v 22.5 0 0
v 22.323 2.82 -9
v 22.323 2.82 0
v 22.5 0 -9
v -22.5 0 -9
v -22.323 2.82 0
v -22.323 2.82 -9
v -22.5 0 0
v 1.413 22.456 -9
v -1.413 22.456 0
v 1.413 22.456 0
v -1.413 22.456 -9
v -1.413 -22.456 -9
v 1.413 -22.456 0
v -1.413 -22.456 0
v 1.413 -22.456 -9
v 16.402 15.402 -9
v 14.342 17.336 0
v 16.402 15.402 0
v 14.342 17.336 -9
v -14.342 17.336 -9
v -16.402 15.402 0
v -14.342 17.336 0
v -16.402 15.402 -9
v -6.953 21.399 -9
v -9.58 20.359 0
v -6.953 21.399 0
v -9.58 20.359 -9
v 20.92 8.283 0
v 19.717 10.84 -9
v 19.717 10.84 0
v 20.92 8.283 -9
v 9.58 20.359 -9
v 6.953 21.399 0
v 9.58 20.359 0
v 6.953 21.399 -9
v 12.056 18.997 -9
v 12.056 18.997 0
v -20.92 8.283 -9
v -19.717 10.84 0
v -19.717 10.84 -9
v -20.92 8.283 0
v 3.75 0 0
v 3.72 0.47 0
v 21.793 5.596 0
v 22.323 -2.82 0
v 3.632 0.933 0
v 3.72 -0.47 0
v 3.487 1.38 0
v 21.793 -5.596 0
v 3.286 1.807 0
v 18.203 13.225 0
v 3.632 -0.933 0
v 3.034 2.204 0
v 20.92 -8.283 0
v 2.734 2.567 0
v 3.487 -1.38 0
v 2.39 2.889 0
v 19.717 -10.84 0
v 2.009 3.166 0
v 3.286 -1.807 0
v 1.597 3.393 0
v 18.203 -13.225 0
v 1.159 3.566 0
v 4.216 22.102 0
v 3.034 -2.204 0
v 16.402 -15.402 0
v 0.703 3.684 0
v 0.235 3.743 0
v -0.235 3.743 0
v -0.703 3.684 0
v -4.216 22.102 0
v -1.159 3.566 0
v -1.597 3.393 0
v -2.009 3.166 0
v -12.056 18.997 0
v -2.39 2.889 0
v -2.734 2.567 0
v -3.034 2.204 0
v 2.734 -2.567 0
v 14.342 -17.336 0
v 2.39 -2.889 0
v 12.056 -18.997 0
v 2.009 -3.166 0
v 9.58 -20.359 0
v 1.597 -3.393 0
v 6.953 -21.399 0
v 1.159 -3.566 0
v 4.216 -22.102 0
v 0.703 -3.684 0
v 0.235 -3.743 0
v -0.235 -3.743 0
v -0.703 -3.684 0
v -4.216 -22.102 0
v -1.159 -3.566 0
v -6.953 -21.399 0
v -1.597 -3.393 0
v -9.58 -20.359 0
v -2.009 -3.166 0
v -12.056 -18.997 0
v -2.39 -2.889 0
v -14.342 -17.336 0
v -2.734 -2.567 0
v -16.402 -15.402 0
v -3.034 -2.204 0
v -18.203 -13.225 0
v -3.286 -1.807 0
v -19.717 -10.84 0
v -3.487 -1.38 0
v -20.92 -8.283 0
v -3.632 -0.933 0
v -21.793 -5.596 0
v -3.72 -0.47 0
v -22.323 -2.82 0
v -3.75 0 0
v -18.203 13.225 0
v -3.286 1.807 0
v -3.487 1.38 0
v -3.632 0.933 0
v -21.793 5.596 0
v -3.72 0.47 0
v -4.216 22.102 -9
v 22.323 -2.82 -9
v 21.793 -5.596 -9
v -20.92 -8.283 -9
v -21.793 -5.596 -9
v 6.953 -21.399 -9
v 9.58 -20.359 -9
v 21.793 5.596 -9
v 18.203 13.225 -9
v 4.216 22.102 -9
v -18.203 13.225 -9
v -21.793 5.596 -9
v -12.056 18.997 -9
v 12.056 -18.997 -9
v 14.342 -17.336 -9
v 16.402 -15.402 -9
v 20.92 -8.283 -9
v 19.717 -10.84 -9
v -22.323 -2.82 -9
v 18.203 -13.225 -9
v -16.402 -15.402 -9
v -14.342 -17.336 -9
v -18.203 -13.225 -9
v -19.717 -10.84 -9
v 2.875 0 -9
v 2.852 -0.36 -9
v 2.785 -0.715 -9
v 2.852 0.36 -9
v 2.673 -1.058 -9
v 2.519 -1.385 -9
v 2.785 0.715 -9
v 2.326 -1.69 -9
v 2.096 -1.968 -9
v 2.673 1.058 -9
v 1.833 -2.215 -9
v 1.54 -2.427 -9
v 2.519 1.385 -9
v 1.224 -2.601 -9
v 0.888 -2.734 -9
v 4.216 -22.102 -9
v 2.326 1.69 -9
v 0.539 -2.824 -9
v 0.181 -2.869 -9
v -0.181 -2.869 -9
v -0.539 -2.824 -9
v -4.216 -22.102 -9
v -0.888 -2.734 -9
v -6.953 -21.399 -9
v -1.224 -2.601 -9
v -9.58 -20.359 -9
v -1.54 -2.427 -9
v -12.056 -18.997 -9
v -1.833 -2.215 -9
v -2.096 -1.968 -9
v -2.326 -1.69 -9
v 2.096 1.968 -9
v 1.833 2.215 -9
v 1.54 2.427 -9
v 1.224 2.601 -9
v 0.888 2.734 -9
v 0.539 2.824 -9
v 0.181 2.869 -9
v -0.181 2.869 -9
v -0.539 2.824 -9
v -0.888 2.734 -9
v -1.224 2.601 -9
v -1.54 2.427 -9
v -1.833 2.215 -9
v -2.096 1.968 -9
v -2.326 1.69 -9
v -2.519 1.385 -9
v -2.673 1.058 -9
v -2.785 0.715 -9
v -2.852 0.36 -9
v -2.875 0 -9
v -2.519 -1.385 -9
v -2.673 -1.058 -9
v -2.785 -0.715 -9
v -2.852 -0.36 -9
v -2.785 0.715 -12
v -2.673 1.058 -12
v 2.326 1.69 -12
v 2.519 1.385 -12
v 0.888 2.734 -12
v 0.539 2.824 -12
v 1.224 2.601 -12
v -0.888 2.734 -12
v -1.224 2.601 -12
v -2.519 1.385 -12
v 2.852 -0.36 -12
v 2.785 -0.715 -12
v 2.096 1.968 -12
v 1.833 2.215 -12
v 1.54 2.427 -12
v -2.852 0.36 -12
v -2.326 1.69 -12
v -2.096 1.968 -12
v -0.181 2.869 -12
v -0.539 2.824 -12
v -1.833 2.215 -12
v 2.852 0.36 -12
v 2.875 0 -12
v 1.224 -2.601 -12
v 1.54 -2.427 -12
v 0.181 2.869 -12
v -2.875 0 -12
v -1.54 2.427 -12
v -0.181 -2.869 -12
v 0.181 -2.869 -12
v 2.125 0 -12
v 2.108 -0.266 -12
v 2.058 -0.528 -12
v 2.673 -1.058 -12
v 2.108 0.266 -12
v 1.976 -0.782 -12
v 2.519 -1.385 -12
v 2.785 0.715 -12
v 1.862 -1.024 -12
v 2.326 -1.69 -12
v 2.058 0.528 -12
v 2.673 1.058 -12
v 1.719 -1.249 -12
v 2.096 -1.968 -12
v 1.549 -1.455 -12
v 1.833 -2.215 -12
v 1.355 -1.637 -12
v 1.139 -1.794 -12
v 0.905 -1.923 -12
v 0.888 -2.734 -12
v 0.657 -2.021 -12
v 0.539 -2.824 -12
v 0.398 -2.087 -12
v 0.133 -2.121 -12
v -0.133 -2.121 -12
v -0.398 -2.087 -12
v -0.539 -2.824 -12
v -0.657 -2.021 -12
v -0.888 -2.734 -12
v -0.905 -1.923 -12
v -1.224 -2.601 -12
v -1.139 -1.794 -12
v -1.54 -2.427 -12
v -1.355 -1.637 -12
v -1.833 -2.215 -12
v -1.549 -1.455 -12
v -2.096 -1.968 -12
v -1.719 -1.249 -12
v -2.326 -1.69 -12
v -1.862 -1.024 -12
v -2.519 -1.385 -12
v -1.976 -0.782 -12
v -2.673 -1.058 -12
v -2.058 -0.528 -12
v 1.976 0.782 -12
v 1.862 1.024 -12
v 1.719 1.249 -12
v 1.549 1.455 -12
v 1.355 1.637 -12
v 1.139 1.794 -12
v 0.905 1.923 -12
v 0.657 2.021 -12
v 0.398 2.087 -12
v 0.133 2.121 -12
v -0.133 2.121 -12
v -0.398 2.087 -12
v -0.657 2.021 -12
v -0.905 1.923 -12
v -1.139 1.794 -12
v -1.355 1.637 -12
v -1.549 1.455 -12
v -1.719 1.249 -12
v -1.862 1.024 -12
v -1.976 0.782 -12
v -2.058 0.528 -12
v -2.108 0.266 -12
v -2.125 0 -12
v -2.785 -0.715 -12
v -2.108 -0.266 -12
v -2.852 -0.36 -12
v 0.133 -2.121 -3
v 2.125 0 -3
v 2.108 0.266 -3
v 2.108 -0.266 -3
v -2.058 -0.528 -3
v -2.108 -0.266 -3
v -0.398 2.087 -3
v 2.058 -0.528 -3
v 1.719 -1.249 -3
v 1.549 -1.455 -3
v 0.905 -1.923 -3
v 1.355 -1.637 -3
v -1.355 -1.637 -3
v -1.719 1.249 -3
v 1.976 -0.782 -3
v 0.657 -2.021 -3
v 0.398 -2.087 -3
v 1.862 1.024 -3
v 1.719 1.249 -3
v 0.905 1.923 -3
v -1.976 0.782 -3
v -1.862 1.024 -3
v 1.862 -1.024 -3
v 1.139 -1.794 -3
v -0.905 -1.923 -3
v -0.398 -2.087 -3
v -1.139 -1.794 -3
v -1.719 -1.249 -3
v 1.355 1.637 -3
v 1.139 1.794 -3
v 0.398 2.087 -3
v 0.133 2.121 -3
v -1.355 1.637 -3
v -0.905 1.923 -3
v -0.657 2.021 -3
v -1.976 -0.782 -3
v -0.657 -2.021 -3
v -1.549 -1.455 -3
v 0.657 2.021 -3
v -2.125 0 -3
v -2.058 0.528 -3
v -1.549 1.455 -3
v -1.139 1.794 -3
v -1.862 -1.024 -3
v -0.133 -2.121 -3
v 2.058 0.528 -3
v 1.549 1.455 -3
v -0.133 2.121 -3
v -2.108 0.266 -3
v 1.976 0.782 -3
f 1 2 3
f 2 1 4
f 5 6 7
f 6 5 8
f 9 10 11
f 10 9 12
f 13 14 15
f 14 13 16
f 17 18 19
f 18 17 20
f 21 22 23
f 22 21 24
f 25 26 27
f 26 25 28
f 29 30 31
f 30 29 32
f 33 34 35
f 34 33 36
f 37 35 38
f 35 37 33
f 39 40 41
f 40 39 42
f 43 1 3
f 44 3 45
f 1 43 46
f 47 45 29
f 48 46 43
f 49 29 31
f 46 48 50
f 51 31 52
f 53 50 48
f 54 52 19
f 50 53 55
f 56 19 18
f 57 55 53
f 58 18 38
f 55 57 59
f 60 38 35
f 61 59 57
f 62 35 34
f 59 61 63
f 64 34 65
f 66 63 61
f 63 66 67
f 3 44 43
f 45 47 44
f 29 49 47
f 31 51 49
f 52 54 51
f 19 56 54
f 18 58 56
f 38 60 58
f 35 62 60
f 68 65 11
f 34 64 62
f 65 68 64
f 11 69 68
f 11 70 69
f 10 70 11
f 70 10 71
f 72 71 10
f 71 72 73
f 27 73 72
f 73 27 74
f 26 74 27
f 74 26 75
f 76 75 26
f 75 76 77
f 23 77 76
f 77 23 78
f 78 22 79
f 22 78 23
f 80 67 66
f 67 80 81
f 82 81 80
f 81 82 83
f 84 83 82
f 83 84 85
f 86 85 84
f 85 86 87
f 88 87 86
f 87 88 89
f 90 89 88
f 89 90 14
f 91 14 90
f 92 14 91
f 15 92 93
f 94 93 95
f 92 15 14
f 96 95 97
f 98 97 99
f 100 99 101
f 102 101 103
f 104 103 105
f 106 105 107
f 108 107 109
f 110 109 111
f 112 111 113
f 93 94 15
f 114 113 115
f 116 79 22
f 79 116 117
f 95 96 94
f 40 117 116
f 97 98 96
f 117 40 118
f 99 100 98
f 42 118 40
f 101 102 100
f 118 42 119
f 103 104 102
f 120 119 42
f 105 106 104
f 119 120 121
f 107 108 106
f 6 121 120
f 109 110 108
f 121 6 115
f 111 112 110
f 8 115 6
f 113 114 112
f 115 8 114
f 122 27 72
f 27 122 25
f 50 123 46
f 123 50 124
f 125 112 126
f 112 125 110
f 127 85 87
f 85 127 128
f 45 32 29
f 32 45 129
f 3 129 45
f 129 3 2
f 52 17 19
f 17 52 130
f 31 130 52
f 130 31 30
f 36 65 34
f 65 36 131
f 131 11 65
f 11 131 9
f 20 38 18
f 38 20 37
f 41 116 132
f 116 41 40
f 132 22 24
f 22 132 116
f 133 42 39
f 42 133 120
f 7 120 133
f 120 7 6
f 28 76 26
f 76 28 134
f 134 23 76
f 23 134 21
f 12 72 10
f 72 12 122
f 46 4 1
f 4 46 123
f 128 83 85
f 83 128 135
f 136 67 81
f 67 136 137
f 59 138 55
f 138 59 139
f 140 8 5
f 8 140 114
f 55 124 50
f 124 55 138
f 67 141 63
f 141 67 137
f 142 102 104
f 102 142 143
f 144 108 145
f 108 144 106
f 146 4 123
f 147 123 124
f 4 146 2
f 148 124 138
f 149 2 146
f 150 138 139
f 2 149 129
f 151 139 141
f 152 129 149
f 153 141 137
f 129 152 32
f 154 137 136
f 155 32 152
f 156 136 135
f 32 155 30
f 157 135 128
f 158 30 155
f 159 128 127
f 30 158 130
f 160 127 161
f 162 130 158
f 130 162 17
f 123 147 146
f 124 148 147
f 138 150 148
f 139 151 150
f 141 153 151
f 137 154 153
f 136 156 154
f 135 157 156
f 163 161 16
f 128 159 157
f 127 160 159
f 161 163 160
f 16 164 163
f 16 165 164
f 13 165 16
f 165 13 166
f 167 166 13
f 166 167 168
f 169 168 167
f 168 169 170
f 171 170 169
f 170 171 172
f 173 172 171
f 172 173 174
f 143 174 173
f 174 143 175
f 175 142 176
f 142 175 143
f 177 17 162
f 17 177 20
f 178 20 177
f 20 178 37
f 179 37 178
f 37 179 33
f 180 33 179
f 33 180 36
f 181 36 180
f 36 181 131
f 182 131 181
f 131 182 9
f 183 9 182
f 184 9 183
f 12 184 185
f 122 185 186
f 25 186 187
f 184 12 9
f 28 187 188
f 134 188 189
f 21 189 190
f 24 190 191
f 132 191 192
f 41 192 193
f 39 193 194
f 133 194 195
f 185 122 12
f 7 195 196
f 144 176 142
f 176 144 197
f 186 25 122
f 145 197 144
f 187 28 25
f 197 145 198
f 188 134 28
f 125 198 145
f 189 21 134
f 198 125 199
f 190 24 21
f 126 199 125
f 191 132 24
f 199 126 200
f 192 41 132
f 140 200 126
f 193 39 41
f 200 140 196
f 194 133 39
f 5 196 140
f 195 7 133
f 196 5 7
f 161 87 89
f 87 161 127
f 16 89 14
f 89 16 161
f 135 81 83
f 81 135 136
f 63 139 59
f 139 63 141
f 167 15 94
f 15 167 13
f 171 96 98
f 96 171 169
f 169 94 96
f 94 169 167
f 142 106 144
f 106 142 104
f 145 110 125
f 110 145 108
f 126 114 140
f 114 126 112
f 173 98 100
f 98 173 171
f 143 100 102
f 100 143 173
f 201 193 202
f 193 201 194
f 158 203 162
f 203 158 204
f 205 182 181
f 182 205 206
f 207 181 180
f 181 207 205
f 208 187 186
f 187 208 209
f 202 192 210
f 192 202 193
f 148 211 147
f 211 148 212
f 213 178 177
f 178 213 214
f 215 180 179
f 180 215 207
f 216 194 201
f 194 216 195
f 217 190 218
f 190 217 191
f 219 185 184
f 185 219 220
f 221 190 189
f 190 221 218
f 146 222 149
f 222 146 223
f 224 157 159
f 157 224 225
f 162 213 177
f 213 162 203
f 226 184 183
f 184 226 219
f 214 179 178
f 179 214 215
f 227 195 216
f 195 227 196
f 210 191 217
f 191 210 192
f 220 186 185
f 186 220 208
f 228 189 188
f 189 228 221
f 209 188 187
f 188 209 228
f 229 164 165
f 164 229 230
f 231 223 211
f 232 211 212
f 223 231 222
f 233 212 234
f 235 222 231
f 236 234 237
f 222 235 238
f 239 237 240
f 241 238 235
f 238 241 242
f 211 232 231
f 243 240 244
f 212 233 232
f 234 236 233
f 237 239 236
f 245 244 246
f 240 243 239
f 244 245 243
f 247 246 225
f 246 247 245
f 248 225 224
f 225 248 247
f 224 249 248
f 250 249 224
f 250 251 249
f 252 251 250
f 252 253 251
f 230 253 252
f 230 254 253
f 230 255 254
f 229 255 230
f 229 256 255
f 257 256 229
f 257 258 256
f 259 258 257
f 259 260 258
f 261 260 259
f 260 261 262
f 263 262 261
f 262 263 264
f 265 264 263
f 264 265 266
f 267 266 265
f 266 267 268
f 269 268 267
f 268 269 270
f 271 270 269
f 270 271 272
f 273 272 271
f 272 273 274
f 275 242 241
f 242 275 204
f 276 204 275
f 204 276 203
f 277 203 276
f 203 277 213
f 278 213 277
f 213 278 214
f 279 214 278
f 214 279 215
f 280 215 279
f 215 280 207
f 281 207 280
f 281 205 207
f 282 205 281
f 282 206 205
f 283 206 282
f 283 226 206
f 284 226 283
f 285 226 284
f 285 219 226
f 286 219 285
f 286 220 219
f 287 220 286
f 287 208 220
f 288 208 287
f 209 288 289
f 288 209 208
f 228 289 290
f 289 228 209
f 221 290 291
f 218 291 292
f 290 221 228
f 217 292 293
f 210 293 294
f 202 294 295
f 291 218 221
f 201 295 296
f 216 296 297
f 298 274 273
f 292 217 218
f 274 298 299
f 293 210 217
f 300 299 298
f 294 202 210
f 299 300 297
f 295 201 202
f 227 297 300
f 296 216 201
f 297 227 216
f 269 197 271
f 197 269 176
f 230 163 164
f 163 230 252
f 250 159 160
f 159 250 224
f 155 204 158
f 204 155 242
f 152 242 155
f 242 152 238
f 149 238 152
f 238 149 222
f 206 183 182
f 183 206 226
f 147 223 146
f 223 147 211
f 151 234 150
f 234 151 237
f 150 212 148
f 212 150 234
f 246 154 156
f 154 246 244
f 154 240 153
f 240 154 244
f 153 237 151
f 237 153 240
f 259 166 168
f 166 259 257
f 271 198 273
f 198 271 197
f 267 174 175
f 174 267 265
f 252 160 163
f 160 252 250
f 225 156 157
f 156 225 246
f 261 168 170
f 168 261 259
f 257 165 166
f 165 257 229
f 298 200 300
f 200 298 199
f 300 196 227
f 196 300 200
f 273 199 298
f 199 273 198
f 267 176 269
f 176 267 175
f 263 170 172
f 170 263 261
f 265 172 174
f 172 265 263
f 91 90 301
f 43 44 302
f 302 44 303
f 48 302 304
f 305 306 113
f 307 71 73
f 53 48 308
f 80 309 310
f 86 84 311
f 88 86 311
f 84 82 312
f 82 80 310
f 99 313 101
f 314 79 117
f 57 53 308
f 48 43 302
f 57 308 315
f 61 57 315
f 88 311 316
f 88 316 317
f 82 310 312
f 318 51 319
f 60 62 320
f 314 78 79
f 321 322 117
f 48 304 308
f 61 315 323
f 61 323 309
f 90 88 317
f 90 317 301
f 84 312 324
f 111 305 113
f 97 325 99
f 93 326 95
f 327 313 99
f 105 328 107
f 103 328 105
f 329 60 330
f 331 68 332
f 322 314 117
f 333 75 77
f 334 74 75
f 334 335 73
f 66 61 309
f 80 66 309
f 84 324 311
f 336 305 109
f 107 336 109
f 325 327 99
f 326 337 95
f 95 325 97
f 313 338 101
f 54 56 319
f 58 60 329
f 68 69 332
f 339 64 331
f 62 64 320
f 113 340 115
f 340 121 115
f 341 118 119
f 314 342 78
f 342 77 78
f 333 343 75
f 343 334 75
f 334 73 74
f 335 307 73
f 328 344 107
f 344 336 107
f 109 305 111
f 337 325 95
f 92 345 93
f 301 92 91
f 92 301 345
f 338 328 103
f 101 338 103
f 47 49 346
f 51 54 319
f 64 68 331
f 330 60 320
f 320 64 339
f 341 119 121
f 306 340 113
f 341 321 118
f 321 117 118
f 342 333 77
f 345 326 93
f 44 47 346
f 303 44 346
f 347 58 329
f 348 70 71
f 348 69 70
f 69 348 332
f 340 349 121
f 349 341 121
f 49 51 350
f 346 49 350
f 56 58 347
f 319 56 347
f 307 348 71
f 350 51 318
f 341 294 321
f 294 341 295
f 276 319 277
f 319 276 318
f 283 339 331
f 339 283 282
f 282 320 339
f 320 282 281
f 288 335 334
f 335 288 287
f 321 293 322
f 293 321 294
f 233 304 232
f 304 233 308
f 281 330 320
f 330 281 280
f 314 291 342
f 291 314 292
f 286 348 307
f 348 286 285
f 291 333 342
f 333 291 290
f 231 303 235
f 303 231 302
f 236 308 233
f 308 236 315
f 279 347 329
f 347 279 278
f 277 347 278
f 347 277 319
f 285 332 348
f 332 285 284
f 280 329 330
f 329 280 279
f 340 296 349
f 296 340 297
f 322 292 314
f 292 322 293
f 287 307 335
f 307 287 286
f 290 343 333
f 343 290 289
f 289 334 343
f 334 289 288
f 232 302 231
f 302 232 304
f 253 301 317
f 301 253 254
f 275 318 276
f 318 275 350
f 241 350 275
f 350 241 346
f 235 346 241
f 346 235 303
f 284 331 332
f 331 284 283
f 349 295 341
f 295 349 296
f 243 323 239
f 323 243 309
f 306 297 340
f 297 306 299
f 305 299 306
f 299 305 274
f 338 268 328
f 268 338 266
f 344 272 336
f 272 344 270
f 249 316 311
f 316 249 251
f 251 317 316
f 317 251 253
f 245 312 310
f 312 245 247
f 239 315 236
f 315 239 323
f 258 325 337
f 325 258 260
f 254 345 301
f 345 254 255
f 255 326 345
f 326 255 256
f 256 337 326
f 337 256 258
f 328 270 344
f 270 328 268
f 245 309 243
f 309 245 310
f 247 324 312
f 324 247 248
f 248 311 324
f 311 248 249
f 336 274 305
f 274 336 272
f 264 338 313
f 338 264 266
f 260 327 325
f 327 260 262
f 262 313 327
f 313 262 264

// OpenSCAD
$fn = 50;


difference() {
	union() {
		translate(v = [0, 0, -9.0000000000]) {
			cylinder(h = 9, r = 22.5000000000);
		}
		translate(v = [0, 0, -12.0000000000]) {
			cylinder(h = 12, r = 2.8750000000);
		}
	}
	union() {
		translate(v = [0, 0, 0]) {
			rotate(a = [0, 0, 0]) {
				difference() {
					union() {
						translate(v = [0, 0, -12.0000000000]) {
							cylinder(h = 12, r = 2.0000000000);
						}
						translate(v = [0, 0, -3]) {
							cylinder(h = 3, r1 = 2.1250000000, r2 = 3.7500000000);
						}
						translate(v = [0, 0, -12.0000000000]) {
							cylinder(h = 12, r = 2.1250000000);
						}
						translate(v = [0, 0, -12.0000000000]) {
							cylinder(h = 12, r = 2.0000000000);
						}
					}
					union();
				}
			}
		}
	}
}
